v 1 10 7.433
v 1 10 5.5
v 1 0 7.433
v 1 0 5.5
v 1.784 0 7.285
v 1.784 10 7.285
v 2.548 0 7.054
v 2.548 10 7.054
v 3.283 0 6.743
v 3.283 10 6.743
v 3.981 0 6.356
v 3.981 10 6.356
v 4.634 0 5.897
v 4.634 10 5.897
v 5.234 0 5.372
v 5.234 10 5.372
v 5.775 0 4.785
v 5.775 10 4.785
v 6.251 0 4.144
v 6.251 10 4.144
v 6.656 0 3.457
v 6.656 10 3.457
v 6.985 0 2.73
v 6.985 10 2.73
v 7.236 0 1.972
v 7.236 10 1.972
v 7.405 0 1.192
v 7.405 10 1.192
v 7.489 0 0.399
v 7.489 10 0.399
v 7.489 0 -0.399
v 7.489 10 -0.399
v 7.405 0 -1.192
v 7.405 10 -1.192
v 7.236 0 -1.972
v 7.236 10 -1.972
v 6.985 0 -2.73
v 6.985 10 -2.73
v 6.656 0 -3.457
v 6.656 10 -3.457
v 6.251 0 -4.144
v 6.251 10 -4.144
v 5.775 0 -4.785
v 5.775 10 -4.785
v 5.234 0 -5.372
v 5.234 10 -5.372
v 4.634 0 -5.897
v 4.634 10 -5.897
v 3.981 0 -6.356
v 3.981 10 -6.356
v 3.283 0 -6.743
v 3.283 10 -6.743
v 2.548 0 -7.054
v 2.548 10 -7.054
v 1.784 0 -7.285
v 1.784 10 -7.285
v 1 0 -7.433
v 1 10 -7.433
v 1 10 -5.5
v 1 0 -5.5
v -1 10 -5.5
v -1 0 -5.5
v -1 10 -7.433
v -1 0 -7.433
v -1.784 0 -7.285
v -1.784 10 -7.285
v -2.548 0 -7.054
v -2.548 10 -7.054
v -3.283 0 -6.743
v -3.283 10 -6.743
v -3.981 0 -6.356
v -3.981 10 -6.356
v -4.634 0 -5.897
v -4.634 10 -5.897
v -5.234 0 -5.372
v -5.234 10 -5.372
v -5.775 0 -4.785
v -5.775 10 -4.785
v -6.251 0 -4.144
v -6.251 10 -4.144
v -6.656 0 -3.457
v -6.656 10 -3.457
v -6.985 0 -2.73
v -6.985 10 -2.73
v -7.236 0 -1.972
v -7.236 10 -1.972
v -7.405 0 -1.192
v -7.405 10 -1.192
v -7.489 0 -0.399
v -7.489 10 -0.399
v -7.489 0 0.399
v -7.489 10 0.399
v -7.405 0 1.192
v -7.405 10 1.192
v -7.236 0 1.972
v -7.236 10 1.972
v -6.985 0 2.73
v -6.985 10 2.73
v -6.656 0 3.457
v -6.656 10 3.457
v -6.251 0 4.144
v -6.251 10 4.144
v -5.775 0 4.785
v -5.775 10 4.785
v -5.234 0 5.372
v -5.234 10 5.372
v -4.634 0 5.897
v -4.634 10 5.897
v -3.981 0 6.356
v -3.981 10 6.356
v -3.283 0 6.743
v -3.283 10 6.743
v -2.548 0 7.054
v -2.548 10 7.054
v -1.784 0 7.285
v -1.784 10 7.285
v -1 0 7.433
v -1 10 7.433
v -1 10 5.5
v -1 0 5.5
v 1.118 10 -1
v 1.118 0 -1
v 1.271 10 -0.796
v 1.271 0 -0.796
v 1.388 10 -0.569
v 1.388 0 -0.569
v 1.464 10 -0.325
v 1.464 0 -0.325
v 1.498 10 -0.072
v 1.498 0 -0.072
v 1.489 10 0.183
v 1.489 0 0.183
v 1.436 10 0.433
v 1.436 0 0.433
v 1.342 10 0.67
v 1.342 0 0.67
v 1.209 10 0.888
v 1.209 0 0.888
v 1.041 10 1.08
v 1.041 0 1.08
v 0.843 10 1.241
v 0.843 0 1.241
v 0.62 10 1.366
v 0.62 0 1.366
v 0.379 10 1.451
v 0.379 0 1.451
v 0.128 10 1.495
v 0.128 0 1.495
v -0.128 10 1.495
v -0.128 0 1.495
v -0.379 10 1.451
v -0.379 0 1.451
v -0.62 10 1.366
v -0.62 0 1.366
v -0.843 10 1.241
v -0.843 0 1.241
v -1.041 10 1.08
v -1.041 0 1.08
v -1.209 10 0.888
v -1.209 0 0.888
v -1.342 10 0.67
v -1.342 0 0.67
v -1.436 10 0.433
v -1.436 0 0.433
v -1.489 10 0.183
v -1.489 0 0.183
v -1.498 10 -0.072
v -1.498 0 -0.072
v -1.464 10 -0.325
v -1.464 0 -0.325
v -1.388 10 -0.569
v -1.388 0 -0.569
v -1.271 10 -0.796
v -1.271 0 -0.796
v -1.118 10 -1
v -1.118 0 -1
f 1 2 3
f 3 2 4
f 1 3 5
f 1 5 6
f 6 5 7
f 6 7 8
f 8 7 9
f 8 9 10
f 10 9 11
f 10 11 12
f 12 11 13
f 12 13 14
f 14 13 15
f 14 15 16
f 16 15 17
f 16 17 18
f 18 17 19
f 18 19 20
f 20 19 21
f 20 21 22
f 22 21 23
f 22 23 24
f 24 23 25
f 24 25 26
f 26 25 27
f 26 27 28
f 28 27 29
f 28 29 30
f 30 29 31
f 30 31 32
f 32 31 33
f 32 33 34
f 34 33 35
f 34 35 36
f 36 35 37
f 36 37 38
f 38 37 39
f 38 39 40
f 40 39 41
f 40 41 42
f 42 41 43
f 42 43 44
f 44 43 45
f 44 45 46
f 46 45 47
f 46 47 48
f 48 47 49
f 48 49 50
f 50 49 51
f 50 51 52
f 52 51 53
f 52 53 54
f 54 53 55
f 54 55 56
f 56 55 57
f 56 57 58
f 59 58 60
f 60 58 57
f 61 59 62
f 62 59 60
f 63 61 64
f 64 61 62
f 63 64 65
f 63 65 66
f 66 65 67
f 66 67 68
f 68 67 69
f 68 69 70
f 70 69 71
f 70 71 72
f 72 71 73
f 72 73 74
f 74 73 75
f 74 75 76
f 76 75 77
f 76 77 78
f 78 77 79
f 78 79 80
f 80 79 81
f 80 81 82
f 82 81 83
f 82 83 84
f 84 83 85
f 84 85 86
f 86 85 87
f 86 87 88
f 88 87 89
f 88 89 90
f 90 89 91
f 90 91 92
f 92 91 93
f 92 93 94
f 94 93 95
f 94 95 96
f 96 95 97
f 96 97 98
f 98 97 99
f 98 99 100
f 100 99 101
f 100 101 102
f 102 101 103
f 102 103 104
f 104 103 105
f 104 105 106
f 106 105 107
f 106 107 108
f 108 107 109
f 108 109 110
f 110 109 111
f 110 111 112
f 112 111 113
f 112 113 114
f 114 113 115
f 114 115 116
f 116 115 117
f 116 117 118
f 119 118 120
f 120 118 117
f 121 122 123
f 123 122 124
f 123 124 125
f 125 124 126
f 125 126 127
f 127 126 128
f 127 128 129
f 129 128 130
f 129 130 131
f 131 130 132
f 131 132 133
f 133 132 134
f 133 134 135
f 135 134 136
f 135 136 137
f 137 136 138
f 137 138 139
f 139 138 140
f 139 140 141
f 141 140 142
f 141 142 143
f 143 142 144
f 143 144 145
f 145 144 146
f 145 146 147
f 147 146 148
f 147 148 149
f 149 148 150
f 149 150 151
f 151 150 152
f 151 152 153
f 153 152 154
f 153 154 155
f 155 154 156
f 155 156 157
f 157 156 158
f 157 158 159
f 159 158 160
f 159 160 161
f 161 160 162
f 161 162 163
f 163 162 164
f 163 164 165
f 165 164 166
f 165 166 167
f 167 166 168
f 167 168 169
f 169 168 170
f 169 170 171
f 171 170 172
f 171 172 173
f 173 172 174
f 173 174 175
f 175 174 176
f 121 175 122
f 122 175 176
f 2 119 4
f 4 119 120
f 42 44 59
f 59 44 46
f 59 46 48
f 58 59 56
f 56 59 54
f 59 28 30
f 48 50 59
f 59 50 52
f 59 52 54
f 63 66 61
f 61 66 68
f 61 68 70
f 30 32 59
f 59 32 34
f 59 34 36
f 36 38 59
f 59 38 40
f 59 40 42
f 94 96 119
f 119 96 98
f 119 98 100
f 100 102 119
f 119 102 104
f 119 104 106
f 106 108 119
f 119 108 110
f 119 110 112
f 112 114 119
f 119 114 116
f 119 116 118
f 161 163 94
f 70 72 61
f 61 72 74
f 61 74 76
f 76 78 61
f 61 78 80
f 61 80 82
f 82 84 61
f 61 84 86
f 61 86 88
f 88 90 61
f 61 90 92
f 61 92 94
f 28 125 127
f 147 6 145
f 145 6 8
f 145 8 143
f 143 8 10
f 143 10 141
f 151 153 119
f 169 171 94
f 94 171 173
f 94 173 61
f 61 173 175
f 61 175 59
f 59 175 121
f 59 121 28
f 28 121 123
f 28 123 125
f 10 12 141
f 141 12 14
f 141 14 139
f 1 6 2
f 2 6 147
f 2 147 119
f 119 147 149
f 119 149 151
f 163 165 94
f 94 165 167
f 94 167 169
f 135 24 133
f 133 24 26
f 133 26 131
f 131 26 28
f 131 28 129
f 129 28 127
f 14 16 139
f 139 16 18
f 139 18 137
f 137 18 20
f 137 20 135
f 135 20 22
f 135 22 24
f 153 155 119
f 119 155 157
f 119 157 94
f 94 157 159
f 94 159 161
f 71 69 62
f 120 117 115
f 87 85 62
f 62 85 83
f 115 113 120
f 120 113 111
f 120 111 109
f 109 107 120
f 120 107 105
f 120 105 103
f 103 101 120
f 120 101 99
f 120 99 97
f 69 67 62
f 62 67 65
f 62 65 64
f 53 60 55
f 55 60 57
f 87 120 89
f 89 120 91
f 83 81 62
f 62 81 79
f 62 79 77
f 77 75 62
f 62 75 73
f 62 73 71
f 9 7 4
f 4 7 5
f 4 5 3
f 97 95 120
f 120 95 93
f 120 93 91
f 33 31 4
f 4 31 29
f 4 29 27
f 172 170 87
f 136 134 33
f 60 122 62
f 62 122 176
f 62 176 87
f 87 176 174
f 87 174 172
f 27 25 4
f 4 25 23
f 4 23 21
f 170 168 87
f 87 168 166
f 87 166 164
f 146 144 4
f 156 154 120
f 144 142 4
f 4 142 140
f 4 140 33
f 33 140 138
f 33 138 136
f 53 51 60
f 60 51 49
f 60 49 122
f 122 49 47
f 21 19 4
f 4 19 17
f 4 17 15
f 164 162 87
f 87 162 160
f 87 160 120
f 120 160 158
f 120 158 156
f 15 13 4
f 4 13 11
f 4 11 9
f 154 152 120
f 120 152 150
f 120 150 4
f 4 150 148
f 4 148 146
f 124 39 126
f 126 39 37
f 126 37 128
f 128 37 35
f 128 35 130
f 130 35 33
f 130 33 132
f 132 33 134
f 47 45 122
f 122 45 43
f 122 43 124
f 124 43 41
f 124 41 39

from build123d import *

# Parameters (mm, degrees)
EXTRUDE_1_DEPTH = 10


with BuildPart() as part:
    # Эскиз1 → Бобышка-Вытянуть1 (new body)
    # profile 1 of 2: a face of its own
    with BuildSketch(Plane(origin=(0, 0, 0), x_dir=(1, 0, 0), z_dir=(0, 1, 0))):
        with BuildLine():
            Line((-1, 5.5), (-1, 7.433034374))
            ThreePointArc((-1, 7.433034374), (-7.5, 0), (-1, -7.433034374))
            Line((-1, -7.433034374), (-1, -5.5))
            Line((-1, -5.5), (1, -5.5))
            Line((1, -5.5), (1, -7.433034374))
            ThreePointArc((1, -7.433034374), (5.645794895, -4.937104415), (7.5, 0))
            ThreePointArc((7.5, 0), (5.645794895, 4.937104415), (1, 7.433034374))
            Line((1, 7.433034374), (1, 5.5))
            Line((1, 5.5), (-1, 5.5))
        make_face()
        with BuildLine():
            ThreePointArc((1.5, 0), (-0.535233135, -1.401258538), (-1.118033989, 1))
            ThreePointArc((-1.118033989, 1), (0, 1.5), (1.118033989, 1))
            ThreePointArc((1.118033989, 1), (1.401258538, 0.535233135), (1.5, 0))
        make_face(mode=Mode.SUBTRACT)
    # profile 2 of 2: a face of its own
    with BuildSketch(Plane(origin=(0, 0, 0), x_dir=(1, 0, 0), z_dir=(0, 1, 0))):
        with BuildLine():
            ThreePointArc((1.118033989, 1), (0, 1.5), (-1.118033989, 1))
            Line((-1.118033989, 1), (1.118033989, 1))
        make_face()
    extrude(amount=EXTRUDE_1_DEPTH)


solid = part.part
